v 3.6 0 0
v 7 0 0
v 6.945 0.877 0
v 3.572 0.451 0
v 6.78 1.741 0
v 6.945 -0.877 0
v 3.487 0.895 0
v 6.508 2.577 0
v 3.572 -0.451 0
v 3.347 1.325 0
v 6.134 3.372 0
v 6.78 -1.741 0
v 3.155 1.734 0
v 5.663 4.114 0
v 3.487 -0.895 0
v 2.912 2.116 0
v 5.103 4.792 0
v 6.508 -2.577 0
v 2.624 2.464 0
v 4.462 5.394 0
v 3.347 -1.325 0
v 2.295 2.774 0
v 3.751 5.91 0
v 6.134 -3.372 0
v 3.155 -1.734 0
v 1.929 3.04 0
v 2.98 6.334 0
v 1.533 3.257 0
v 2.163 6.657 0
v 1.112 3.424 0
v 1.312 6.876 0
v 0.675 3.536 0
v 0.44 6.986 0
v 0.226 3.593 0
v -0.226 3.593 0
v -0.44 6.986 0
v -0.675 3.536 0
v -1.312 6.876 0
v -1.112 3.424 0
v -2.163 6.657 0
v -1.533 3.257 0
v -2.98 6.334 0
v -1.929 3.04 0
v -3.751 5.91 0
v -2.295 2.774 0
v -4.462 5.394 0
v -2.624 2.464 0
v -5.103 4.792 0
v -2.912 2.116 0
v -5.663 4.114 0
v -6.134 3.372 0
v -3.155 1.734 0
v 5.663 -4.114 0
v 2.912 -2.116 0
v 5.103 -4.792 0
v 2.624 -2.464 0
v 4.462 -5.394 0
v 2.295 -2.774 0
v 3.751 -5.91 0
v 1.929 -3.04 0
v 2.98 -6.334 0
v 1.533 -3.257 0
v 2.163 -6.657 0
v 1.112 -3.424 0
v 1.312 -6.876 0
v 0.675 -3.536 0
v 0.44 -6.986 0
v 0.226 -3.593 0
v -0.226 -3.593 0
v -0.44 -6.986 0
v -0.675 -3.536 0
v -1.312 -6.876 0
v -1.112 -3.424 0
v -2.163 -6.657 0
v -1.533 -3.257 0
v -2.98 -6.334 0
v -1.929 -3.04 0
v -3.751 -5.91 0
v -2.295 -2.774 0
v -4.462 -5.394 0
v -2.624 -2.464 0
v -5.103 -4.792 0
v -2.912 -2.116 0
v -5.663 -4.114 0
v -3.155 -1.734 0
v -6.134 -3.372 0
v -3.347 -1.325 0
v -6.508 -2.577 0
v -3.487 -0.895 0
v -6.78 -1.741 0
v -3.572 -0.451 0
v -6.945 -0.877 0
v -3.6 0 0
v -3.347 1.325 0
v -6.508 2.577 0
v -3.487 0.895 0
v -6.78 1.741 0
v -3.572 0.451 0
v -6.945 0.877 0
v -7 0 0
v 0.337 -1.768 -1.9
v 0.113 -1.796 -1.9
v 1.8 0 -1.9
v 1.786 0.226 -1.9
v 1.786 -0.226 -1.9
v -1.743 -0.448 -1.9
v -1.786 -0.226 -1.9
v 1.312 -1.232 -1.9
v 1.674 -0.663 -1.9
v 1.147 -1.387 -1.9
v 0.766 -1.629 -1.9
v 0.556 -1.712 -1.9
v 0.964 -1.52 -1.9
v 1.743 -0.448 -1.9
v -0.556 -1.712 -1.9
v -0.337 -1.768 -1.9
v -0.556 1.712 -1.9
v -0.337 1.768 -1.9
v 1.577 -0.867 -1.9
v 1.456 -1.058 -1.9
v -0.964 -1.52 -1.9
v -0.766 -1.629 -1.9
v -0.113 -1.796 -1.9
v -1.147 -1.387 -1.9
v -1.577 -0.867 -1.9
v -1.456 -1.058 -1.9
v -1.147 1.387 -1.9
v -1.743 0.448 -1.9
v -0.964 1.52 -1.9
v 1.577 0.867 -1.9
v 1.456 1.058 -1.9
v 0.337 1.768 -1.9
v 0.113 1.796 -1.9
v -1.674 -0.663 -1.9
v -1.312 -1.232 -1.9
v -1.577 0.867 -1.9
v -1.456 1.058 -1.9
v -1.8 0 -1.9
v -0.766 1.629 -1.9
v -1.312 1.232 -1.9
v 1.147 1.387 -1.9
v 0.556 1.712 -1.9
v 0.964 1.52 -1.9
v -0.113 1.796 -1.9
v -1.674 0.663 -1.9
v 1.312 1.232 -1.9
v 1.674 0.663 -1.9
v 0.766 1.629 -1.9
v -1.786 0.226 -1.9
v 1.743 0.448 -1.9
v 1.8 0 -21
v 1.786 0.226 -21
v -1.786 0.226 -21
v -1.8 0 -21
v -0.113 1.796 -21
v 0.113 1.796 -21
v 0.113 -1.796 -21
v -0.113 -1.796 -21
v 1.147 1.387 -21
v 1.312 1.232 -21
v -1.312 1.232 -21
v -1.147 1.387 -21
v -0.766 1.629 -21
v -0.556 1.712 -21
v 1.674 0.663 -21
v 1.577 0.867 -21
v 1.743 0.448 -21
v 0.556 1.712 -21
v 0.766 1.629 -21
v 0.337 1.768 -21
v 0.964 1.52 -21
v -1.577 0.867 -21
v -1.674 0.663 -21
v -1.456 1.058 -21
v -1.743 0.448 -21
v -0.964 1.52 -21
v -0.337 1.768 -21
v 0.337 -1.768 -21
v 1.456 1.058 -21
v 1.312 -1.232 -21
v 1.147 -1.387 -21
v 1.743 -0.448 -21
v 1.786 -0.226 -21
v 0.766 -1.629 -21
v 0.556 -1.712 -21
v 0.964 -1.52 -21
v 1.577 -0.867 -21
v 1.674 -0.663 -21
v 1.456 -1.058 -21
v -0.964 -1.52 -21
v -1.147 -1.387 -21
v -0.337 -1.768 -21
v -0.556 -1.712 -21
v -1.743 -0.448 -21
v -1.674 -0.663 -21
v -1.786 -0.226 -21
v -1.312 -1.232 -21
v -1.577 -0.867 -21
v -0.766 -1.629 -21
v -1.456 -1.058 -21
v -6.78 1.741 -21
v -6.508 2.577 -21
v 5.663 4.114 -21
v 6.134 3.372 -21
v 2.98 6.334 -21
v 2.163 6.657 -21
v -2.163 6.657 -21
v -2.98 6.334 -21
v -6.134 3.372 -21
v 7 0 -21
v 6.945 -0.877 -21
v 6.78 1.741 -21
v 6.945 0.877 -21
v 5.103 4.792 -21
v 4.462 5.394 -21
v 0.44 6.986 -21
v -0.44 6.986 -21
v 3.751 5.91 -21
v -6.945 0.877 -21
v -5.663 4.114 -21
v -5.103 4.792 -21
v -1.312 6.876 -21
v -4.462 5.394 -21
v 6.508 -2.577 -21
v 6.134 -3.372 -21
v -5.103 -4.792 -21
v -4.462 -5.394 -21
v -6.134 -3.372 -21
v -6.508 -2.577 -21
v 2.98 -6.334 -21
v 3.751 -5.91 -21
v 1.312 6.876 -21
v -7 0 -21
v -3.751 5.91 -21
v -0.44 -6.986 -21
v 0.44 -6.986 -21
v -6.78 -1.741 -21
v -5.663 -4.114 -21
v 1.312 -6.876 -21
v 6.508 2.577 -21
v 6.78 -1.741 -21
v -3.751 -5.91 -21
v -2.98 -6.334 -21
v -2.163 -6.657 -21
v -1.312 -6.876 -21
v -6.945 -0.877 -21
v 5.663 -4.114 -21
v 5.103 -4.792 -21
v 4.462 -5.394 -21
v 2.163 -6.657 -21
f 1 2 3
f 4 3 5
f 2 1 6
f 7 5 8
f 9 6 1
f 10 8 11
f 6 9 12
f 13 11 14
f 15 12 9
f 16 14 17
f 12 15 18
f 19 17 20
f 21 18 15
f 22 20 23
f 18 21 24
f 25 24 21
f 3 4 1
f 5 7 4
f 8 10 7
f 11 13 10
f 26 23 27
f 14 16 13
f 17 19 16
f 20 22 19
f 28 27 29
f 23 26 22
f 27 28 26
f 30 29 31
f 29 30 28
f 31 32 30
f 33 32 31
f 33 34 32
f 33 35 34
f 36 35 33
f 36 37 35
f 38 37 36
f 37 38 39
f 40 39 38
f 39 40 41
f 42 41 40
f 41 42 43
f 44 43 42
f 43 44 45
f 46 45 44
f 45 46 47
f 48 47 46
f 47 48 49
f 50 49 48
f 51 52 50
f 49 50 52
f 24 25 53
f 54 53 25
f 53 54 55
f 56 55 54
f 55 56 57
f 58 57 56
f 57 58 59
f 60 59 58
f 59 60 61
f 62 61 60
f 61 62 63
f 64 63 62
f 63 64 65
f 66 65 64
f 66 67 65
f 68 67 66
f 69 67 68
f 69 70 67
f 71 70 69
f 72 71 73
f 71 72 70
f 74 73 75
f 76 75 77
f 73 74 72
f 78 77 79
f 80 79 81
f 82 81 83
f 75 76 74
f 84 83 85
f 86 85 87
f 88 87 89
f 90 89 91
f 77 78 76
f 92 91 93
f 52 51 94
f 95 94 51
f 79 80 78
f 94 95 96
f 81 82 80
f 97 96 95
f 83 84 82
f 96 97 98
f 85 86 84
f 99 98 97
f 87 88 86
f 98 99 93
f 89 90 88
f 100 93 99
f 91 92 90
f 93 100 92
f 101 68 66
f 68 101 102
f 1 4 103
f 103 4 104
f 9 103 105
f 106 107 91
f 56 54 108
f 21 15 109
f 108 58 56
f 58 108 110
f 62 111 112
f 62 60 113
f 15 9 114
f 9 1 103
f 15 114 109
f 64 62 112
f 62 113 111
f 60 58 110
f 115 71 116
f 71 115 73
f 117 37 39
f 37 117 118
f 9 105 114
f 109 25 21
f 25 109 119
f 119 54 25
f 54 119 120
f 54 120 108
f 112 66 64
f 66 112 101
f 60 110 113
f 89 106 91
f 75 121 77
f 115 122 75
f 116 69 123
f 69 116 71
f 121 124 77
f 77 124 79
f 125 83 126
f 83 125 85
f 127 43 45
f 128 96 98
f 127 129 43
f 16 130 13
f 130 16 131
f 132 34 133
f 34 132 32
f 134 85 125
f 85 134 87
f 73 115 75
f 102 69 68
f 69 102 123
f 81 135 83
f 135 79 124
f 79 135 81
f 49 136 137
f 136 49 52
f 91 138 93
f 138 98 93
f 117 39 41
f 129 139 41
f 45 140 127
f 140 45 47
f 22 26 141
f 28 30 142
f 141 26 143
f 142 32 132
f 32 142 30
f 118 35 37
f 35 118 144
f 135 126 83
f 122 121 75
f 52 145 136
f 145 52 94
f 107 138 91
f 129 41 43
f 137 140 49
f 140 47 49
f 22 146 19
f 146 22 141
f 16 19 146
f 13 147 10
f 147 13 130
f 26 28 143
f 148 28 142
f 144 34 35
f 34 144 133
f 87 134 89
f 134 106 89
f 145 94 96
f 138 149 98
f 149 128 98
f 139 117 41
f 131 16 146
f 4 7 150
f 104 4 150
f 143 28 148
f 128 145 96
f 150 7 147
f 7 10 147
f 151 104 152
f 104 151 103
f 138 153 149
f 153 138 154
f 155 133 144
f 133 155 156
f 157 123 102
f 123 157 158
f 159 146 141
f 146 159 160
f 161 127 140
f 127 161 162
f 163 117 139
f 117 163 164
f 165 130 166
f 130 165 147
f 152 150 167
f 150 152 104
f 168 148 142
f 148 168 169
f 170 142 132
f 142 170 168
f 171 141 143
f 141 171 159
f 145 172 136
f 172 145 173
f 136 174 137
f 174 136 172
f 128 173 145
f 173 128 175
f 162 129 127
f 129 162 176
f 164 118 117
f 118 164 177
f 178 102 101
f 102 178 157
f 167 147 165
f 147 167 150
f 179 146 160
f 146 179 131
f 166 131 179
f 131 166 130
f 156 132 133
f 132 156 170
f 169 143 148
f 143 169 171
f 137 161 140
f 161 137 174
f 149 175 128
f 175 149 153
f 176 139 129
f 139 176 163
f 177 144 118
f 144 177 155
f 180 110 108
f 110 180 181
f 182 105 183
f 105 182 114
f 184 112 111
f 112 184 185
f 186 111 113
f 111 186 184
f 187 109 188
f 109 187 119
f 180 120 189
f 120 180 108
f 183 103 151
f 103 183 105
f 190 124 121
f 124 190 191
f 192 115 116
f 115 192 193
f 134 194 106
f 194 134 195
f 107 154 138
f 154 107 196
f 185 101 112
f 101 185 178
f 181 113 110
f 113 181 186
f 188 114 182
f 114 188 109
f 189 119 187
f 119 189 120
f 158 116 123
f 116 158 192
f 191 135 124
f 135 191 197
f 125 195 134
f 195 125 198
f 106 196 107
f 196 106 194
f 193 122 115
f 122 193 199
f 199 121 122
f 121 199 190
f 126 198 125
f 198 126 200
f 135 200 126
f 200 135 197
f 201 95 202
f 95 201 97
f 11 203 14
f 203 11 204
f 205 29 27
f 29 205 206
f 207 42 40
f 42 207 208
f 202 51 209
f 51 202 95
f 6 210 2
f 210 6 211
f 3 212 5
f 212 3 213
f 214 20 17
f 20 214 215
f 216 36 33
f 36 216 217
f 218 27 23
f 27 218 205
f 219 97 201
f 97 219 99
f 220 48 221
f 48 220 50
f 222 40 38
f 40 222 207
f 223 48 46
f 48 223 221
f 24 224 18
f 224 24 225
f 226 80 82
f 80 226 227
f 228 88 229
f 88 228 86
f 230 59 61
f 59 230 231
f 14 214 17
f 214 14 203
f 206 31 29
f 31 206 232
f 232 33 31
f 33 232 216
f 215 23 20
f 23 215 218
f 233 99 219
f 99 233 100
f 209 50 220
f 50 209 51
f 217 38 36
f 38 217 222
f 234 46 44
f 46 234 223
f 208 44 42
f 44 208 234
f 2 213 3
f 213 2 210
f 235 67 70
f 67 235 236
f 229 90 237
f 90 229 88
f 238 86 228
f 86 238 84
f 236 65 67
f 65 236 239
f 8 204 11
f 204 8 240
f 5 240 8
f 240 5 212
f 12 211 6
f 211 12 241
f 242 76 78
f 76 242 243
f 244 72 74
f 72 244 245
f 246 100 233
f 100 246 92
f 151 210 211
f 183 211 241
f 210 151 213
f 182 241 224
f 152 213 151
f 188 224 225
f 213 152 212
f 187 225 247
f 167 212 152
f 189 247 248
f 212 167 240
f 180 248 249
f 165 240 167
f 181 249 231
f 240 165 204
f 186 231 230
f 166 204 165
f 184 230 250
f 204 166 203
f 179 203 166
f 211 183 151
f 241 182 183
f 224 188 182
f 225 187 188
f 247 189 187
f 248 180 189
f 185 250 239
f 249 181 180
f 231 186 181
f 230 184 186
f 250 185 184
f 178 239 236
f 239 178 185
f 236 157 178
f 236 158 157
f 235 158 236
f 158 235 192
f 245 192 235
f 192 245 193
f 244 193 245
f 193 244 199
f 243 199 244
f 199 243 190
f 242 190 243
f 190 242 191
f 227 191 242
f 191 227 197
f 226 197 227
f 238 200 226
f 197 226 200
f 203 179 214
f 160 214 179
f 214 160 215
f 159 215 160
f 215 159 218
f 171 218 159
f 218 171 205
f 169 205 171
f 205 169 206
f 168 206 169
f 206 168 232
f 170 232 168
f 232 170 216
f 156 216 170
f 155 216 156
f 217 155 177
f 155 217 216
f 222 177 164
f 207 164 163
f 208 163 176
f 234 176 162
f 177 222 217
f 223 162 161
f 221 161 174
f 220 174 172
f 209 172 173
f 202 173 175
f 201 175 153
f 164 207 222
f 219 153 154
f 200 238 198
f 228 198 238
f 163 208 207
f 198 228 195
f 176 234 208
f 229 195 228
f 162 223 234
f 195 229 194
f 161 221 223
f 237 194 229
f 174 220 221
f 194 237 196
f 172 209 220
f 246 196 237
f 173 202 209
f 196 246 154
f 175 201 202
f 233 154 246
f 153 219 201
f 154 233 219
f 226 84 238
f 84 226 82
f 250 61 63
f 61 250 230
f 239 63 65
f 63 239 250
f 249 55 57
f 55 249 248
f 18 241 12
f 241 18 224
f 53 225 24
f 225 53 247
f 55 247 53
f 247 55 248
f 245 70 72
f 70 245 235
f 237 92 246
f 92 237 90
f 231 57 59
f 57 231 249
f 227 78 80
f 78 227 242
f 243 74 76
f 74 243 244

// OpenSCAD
$fn = 50;

difference() {
	union() {
		translate(v = [0, 0, -21.0]) {
			cylinder(h = 21, r = 7.0);
		}
	}
	union() {
		translate(v = [0, 0, 0]) {
			rotate(a = [0, 0, 0]) {
				difference() {
					union() {
						translate(v = [0, 0, -24.0]) {
							cylinder(h = 24, r = 1.5);
						}
						translate(v = [0, 0, -1.9]) {
							cylinder(h = 1.9, r1 = 1.8, r2 = 3.6);
						}
						translate(v = [0, 0, -24.0]) {
							cylinder(h = 24, r = 1.8);
						}
						translate(v = [0, 0, -24.0]) {
							cylinder(h = 24, r = 1.5);
						}
					}
					union();
				}
			}
		}
	}
}
